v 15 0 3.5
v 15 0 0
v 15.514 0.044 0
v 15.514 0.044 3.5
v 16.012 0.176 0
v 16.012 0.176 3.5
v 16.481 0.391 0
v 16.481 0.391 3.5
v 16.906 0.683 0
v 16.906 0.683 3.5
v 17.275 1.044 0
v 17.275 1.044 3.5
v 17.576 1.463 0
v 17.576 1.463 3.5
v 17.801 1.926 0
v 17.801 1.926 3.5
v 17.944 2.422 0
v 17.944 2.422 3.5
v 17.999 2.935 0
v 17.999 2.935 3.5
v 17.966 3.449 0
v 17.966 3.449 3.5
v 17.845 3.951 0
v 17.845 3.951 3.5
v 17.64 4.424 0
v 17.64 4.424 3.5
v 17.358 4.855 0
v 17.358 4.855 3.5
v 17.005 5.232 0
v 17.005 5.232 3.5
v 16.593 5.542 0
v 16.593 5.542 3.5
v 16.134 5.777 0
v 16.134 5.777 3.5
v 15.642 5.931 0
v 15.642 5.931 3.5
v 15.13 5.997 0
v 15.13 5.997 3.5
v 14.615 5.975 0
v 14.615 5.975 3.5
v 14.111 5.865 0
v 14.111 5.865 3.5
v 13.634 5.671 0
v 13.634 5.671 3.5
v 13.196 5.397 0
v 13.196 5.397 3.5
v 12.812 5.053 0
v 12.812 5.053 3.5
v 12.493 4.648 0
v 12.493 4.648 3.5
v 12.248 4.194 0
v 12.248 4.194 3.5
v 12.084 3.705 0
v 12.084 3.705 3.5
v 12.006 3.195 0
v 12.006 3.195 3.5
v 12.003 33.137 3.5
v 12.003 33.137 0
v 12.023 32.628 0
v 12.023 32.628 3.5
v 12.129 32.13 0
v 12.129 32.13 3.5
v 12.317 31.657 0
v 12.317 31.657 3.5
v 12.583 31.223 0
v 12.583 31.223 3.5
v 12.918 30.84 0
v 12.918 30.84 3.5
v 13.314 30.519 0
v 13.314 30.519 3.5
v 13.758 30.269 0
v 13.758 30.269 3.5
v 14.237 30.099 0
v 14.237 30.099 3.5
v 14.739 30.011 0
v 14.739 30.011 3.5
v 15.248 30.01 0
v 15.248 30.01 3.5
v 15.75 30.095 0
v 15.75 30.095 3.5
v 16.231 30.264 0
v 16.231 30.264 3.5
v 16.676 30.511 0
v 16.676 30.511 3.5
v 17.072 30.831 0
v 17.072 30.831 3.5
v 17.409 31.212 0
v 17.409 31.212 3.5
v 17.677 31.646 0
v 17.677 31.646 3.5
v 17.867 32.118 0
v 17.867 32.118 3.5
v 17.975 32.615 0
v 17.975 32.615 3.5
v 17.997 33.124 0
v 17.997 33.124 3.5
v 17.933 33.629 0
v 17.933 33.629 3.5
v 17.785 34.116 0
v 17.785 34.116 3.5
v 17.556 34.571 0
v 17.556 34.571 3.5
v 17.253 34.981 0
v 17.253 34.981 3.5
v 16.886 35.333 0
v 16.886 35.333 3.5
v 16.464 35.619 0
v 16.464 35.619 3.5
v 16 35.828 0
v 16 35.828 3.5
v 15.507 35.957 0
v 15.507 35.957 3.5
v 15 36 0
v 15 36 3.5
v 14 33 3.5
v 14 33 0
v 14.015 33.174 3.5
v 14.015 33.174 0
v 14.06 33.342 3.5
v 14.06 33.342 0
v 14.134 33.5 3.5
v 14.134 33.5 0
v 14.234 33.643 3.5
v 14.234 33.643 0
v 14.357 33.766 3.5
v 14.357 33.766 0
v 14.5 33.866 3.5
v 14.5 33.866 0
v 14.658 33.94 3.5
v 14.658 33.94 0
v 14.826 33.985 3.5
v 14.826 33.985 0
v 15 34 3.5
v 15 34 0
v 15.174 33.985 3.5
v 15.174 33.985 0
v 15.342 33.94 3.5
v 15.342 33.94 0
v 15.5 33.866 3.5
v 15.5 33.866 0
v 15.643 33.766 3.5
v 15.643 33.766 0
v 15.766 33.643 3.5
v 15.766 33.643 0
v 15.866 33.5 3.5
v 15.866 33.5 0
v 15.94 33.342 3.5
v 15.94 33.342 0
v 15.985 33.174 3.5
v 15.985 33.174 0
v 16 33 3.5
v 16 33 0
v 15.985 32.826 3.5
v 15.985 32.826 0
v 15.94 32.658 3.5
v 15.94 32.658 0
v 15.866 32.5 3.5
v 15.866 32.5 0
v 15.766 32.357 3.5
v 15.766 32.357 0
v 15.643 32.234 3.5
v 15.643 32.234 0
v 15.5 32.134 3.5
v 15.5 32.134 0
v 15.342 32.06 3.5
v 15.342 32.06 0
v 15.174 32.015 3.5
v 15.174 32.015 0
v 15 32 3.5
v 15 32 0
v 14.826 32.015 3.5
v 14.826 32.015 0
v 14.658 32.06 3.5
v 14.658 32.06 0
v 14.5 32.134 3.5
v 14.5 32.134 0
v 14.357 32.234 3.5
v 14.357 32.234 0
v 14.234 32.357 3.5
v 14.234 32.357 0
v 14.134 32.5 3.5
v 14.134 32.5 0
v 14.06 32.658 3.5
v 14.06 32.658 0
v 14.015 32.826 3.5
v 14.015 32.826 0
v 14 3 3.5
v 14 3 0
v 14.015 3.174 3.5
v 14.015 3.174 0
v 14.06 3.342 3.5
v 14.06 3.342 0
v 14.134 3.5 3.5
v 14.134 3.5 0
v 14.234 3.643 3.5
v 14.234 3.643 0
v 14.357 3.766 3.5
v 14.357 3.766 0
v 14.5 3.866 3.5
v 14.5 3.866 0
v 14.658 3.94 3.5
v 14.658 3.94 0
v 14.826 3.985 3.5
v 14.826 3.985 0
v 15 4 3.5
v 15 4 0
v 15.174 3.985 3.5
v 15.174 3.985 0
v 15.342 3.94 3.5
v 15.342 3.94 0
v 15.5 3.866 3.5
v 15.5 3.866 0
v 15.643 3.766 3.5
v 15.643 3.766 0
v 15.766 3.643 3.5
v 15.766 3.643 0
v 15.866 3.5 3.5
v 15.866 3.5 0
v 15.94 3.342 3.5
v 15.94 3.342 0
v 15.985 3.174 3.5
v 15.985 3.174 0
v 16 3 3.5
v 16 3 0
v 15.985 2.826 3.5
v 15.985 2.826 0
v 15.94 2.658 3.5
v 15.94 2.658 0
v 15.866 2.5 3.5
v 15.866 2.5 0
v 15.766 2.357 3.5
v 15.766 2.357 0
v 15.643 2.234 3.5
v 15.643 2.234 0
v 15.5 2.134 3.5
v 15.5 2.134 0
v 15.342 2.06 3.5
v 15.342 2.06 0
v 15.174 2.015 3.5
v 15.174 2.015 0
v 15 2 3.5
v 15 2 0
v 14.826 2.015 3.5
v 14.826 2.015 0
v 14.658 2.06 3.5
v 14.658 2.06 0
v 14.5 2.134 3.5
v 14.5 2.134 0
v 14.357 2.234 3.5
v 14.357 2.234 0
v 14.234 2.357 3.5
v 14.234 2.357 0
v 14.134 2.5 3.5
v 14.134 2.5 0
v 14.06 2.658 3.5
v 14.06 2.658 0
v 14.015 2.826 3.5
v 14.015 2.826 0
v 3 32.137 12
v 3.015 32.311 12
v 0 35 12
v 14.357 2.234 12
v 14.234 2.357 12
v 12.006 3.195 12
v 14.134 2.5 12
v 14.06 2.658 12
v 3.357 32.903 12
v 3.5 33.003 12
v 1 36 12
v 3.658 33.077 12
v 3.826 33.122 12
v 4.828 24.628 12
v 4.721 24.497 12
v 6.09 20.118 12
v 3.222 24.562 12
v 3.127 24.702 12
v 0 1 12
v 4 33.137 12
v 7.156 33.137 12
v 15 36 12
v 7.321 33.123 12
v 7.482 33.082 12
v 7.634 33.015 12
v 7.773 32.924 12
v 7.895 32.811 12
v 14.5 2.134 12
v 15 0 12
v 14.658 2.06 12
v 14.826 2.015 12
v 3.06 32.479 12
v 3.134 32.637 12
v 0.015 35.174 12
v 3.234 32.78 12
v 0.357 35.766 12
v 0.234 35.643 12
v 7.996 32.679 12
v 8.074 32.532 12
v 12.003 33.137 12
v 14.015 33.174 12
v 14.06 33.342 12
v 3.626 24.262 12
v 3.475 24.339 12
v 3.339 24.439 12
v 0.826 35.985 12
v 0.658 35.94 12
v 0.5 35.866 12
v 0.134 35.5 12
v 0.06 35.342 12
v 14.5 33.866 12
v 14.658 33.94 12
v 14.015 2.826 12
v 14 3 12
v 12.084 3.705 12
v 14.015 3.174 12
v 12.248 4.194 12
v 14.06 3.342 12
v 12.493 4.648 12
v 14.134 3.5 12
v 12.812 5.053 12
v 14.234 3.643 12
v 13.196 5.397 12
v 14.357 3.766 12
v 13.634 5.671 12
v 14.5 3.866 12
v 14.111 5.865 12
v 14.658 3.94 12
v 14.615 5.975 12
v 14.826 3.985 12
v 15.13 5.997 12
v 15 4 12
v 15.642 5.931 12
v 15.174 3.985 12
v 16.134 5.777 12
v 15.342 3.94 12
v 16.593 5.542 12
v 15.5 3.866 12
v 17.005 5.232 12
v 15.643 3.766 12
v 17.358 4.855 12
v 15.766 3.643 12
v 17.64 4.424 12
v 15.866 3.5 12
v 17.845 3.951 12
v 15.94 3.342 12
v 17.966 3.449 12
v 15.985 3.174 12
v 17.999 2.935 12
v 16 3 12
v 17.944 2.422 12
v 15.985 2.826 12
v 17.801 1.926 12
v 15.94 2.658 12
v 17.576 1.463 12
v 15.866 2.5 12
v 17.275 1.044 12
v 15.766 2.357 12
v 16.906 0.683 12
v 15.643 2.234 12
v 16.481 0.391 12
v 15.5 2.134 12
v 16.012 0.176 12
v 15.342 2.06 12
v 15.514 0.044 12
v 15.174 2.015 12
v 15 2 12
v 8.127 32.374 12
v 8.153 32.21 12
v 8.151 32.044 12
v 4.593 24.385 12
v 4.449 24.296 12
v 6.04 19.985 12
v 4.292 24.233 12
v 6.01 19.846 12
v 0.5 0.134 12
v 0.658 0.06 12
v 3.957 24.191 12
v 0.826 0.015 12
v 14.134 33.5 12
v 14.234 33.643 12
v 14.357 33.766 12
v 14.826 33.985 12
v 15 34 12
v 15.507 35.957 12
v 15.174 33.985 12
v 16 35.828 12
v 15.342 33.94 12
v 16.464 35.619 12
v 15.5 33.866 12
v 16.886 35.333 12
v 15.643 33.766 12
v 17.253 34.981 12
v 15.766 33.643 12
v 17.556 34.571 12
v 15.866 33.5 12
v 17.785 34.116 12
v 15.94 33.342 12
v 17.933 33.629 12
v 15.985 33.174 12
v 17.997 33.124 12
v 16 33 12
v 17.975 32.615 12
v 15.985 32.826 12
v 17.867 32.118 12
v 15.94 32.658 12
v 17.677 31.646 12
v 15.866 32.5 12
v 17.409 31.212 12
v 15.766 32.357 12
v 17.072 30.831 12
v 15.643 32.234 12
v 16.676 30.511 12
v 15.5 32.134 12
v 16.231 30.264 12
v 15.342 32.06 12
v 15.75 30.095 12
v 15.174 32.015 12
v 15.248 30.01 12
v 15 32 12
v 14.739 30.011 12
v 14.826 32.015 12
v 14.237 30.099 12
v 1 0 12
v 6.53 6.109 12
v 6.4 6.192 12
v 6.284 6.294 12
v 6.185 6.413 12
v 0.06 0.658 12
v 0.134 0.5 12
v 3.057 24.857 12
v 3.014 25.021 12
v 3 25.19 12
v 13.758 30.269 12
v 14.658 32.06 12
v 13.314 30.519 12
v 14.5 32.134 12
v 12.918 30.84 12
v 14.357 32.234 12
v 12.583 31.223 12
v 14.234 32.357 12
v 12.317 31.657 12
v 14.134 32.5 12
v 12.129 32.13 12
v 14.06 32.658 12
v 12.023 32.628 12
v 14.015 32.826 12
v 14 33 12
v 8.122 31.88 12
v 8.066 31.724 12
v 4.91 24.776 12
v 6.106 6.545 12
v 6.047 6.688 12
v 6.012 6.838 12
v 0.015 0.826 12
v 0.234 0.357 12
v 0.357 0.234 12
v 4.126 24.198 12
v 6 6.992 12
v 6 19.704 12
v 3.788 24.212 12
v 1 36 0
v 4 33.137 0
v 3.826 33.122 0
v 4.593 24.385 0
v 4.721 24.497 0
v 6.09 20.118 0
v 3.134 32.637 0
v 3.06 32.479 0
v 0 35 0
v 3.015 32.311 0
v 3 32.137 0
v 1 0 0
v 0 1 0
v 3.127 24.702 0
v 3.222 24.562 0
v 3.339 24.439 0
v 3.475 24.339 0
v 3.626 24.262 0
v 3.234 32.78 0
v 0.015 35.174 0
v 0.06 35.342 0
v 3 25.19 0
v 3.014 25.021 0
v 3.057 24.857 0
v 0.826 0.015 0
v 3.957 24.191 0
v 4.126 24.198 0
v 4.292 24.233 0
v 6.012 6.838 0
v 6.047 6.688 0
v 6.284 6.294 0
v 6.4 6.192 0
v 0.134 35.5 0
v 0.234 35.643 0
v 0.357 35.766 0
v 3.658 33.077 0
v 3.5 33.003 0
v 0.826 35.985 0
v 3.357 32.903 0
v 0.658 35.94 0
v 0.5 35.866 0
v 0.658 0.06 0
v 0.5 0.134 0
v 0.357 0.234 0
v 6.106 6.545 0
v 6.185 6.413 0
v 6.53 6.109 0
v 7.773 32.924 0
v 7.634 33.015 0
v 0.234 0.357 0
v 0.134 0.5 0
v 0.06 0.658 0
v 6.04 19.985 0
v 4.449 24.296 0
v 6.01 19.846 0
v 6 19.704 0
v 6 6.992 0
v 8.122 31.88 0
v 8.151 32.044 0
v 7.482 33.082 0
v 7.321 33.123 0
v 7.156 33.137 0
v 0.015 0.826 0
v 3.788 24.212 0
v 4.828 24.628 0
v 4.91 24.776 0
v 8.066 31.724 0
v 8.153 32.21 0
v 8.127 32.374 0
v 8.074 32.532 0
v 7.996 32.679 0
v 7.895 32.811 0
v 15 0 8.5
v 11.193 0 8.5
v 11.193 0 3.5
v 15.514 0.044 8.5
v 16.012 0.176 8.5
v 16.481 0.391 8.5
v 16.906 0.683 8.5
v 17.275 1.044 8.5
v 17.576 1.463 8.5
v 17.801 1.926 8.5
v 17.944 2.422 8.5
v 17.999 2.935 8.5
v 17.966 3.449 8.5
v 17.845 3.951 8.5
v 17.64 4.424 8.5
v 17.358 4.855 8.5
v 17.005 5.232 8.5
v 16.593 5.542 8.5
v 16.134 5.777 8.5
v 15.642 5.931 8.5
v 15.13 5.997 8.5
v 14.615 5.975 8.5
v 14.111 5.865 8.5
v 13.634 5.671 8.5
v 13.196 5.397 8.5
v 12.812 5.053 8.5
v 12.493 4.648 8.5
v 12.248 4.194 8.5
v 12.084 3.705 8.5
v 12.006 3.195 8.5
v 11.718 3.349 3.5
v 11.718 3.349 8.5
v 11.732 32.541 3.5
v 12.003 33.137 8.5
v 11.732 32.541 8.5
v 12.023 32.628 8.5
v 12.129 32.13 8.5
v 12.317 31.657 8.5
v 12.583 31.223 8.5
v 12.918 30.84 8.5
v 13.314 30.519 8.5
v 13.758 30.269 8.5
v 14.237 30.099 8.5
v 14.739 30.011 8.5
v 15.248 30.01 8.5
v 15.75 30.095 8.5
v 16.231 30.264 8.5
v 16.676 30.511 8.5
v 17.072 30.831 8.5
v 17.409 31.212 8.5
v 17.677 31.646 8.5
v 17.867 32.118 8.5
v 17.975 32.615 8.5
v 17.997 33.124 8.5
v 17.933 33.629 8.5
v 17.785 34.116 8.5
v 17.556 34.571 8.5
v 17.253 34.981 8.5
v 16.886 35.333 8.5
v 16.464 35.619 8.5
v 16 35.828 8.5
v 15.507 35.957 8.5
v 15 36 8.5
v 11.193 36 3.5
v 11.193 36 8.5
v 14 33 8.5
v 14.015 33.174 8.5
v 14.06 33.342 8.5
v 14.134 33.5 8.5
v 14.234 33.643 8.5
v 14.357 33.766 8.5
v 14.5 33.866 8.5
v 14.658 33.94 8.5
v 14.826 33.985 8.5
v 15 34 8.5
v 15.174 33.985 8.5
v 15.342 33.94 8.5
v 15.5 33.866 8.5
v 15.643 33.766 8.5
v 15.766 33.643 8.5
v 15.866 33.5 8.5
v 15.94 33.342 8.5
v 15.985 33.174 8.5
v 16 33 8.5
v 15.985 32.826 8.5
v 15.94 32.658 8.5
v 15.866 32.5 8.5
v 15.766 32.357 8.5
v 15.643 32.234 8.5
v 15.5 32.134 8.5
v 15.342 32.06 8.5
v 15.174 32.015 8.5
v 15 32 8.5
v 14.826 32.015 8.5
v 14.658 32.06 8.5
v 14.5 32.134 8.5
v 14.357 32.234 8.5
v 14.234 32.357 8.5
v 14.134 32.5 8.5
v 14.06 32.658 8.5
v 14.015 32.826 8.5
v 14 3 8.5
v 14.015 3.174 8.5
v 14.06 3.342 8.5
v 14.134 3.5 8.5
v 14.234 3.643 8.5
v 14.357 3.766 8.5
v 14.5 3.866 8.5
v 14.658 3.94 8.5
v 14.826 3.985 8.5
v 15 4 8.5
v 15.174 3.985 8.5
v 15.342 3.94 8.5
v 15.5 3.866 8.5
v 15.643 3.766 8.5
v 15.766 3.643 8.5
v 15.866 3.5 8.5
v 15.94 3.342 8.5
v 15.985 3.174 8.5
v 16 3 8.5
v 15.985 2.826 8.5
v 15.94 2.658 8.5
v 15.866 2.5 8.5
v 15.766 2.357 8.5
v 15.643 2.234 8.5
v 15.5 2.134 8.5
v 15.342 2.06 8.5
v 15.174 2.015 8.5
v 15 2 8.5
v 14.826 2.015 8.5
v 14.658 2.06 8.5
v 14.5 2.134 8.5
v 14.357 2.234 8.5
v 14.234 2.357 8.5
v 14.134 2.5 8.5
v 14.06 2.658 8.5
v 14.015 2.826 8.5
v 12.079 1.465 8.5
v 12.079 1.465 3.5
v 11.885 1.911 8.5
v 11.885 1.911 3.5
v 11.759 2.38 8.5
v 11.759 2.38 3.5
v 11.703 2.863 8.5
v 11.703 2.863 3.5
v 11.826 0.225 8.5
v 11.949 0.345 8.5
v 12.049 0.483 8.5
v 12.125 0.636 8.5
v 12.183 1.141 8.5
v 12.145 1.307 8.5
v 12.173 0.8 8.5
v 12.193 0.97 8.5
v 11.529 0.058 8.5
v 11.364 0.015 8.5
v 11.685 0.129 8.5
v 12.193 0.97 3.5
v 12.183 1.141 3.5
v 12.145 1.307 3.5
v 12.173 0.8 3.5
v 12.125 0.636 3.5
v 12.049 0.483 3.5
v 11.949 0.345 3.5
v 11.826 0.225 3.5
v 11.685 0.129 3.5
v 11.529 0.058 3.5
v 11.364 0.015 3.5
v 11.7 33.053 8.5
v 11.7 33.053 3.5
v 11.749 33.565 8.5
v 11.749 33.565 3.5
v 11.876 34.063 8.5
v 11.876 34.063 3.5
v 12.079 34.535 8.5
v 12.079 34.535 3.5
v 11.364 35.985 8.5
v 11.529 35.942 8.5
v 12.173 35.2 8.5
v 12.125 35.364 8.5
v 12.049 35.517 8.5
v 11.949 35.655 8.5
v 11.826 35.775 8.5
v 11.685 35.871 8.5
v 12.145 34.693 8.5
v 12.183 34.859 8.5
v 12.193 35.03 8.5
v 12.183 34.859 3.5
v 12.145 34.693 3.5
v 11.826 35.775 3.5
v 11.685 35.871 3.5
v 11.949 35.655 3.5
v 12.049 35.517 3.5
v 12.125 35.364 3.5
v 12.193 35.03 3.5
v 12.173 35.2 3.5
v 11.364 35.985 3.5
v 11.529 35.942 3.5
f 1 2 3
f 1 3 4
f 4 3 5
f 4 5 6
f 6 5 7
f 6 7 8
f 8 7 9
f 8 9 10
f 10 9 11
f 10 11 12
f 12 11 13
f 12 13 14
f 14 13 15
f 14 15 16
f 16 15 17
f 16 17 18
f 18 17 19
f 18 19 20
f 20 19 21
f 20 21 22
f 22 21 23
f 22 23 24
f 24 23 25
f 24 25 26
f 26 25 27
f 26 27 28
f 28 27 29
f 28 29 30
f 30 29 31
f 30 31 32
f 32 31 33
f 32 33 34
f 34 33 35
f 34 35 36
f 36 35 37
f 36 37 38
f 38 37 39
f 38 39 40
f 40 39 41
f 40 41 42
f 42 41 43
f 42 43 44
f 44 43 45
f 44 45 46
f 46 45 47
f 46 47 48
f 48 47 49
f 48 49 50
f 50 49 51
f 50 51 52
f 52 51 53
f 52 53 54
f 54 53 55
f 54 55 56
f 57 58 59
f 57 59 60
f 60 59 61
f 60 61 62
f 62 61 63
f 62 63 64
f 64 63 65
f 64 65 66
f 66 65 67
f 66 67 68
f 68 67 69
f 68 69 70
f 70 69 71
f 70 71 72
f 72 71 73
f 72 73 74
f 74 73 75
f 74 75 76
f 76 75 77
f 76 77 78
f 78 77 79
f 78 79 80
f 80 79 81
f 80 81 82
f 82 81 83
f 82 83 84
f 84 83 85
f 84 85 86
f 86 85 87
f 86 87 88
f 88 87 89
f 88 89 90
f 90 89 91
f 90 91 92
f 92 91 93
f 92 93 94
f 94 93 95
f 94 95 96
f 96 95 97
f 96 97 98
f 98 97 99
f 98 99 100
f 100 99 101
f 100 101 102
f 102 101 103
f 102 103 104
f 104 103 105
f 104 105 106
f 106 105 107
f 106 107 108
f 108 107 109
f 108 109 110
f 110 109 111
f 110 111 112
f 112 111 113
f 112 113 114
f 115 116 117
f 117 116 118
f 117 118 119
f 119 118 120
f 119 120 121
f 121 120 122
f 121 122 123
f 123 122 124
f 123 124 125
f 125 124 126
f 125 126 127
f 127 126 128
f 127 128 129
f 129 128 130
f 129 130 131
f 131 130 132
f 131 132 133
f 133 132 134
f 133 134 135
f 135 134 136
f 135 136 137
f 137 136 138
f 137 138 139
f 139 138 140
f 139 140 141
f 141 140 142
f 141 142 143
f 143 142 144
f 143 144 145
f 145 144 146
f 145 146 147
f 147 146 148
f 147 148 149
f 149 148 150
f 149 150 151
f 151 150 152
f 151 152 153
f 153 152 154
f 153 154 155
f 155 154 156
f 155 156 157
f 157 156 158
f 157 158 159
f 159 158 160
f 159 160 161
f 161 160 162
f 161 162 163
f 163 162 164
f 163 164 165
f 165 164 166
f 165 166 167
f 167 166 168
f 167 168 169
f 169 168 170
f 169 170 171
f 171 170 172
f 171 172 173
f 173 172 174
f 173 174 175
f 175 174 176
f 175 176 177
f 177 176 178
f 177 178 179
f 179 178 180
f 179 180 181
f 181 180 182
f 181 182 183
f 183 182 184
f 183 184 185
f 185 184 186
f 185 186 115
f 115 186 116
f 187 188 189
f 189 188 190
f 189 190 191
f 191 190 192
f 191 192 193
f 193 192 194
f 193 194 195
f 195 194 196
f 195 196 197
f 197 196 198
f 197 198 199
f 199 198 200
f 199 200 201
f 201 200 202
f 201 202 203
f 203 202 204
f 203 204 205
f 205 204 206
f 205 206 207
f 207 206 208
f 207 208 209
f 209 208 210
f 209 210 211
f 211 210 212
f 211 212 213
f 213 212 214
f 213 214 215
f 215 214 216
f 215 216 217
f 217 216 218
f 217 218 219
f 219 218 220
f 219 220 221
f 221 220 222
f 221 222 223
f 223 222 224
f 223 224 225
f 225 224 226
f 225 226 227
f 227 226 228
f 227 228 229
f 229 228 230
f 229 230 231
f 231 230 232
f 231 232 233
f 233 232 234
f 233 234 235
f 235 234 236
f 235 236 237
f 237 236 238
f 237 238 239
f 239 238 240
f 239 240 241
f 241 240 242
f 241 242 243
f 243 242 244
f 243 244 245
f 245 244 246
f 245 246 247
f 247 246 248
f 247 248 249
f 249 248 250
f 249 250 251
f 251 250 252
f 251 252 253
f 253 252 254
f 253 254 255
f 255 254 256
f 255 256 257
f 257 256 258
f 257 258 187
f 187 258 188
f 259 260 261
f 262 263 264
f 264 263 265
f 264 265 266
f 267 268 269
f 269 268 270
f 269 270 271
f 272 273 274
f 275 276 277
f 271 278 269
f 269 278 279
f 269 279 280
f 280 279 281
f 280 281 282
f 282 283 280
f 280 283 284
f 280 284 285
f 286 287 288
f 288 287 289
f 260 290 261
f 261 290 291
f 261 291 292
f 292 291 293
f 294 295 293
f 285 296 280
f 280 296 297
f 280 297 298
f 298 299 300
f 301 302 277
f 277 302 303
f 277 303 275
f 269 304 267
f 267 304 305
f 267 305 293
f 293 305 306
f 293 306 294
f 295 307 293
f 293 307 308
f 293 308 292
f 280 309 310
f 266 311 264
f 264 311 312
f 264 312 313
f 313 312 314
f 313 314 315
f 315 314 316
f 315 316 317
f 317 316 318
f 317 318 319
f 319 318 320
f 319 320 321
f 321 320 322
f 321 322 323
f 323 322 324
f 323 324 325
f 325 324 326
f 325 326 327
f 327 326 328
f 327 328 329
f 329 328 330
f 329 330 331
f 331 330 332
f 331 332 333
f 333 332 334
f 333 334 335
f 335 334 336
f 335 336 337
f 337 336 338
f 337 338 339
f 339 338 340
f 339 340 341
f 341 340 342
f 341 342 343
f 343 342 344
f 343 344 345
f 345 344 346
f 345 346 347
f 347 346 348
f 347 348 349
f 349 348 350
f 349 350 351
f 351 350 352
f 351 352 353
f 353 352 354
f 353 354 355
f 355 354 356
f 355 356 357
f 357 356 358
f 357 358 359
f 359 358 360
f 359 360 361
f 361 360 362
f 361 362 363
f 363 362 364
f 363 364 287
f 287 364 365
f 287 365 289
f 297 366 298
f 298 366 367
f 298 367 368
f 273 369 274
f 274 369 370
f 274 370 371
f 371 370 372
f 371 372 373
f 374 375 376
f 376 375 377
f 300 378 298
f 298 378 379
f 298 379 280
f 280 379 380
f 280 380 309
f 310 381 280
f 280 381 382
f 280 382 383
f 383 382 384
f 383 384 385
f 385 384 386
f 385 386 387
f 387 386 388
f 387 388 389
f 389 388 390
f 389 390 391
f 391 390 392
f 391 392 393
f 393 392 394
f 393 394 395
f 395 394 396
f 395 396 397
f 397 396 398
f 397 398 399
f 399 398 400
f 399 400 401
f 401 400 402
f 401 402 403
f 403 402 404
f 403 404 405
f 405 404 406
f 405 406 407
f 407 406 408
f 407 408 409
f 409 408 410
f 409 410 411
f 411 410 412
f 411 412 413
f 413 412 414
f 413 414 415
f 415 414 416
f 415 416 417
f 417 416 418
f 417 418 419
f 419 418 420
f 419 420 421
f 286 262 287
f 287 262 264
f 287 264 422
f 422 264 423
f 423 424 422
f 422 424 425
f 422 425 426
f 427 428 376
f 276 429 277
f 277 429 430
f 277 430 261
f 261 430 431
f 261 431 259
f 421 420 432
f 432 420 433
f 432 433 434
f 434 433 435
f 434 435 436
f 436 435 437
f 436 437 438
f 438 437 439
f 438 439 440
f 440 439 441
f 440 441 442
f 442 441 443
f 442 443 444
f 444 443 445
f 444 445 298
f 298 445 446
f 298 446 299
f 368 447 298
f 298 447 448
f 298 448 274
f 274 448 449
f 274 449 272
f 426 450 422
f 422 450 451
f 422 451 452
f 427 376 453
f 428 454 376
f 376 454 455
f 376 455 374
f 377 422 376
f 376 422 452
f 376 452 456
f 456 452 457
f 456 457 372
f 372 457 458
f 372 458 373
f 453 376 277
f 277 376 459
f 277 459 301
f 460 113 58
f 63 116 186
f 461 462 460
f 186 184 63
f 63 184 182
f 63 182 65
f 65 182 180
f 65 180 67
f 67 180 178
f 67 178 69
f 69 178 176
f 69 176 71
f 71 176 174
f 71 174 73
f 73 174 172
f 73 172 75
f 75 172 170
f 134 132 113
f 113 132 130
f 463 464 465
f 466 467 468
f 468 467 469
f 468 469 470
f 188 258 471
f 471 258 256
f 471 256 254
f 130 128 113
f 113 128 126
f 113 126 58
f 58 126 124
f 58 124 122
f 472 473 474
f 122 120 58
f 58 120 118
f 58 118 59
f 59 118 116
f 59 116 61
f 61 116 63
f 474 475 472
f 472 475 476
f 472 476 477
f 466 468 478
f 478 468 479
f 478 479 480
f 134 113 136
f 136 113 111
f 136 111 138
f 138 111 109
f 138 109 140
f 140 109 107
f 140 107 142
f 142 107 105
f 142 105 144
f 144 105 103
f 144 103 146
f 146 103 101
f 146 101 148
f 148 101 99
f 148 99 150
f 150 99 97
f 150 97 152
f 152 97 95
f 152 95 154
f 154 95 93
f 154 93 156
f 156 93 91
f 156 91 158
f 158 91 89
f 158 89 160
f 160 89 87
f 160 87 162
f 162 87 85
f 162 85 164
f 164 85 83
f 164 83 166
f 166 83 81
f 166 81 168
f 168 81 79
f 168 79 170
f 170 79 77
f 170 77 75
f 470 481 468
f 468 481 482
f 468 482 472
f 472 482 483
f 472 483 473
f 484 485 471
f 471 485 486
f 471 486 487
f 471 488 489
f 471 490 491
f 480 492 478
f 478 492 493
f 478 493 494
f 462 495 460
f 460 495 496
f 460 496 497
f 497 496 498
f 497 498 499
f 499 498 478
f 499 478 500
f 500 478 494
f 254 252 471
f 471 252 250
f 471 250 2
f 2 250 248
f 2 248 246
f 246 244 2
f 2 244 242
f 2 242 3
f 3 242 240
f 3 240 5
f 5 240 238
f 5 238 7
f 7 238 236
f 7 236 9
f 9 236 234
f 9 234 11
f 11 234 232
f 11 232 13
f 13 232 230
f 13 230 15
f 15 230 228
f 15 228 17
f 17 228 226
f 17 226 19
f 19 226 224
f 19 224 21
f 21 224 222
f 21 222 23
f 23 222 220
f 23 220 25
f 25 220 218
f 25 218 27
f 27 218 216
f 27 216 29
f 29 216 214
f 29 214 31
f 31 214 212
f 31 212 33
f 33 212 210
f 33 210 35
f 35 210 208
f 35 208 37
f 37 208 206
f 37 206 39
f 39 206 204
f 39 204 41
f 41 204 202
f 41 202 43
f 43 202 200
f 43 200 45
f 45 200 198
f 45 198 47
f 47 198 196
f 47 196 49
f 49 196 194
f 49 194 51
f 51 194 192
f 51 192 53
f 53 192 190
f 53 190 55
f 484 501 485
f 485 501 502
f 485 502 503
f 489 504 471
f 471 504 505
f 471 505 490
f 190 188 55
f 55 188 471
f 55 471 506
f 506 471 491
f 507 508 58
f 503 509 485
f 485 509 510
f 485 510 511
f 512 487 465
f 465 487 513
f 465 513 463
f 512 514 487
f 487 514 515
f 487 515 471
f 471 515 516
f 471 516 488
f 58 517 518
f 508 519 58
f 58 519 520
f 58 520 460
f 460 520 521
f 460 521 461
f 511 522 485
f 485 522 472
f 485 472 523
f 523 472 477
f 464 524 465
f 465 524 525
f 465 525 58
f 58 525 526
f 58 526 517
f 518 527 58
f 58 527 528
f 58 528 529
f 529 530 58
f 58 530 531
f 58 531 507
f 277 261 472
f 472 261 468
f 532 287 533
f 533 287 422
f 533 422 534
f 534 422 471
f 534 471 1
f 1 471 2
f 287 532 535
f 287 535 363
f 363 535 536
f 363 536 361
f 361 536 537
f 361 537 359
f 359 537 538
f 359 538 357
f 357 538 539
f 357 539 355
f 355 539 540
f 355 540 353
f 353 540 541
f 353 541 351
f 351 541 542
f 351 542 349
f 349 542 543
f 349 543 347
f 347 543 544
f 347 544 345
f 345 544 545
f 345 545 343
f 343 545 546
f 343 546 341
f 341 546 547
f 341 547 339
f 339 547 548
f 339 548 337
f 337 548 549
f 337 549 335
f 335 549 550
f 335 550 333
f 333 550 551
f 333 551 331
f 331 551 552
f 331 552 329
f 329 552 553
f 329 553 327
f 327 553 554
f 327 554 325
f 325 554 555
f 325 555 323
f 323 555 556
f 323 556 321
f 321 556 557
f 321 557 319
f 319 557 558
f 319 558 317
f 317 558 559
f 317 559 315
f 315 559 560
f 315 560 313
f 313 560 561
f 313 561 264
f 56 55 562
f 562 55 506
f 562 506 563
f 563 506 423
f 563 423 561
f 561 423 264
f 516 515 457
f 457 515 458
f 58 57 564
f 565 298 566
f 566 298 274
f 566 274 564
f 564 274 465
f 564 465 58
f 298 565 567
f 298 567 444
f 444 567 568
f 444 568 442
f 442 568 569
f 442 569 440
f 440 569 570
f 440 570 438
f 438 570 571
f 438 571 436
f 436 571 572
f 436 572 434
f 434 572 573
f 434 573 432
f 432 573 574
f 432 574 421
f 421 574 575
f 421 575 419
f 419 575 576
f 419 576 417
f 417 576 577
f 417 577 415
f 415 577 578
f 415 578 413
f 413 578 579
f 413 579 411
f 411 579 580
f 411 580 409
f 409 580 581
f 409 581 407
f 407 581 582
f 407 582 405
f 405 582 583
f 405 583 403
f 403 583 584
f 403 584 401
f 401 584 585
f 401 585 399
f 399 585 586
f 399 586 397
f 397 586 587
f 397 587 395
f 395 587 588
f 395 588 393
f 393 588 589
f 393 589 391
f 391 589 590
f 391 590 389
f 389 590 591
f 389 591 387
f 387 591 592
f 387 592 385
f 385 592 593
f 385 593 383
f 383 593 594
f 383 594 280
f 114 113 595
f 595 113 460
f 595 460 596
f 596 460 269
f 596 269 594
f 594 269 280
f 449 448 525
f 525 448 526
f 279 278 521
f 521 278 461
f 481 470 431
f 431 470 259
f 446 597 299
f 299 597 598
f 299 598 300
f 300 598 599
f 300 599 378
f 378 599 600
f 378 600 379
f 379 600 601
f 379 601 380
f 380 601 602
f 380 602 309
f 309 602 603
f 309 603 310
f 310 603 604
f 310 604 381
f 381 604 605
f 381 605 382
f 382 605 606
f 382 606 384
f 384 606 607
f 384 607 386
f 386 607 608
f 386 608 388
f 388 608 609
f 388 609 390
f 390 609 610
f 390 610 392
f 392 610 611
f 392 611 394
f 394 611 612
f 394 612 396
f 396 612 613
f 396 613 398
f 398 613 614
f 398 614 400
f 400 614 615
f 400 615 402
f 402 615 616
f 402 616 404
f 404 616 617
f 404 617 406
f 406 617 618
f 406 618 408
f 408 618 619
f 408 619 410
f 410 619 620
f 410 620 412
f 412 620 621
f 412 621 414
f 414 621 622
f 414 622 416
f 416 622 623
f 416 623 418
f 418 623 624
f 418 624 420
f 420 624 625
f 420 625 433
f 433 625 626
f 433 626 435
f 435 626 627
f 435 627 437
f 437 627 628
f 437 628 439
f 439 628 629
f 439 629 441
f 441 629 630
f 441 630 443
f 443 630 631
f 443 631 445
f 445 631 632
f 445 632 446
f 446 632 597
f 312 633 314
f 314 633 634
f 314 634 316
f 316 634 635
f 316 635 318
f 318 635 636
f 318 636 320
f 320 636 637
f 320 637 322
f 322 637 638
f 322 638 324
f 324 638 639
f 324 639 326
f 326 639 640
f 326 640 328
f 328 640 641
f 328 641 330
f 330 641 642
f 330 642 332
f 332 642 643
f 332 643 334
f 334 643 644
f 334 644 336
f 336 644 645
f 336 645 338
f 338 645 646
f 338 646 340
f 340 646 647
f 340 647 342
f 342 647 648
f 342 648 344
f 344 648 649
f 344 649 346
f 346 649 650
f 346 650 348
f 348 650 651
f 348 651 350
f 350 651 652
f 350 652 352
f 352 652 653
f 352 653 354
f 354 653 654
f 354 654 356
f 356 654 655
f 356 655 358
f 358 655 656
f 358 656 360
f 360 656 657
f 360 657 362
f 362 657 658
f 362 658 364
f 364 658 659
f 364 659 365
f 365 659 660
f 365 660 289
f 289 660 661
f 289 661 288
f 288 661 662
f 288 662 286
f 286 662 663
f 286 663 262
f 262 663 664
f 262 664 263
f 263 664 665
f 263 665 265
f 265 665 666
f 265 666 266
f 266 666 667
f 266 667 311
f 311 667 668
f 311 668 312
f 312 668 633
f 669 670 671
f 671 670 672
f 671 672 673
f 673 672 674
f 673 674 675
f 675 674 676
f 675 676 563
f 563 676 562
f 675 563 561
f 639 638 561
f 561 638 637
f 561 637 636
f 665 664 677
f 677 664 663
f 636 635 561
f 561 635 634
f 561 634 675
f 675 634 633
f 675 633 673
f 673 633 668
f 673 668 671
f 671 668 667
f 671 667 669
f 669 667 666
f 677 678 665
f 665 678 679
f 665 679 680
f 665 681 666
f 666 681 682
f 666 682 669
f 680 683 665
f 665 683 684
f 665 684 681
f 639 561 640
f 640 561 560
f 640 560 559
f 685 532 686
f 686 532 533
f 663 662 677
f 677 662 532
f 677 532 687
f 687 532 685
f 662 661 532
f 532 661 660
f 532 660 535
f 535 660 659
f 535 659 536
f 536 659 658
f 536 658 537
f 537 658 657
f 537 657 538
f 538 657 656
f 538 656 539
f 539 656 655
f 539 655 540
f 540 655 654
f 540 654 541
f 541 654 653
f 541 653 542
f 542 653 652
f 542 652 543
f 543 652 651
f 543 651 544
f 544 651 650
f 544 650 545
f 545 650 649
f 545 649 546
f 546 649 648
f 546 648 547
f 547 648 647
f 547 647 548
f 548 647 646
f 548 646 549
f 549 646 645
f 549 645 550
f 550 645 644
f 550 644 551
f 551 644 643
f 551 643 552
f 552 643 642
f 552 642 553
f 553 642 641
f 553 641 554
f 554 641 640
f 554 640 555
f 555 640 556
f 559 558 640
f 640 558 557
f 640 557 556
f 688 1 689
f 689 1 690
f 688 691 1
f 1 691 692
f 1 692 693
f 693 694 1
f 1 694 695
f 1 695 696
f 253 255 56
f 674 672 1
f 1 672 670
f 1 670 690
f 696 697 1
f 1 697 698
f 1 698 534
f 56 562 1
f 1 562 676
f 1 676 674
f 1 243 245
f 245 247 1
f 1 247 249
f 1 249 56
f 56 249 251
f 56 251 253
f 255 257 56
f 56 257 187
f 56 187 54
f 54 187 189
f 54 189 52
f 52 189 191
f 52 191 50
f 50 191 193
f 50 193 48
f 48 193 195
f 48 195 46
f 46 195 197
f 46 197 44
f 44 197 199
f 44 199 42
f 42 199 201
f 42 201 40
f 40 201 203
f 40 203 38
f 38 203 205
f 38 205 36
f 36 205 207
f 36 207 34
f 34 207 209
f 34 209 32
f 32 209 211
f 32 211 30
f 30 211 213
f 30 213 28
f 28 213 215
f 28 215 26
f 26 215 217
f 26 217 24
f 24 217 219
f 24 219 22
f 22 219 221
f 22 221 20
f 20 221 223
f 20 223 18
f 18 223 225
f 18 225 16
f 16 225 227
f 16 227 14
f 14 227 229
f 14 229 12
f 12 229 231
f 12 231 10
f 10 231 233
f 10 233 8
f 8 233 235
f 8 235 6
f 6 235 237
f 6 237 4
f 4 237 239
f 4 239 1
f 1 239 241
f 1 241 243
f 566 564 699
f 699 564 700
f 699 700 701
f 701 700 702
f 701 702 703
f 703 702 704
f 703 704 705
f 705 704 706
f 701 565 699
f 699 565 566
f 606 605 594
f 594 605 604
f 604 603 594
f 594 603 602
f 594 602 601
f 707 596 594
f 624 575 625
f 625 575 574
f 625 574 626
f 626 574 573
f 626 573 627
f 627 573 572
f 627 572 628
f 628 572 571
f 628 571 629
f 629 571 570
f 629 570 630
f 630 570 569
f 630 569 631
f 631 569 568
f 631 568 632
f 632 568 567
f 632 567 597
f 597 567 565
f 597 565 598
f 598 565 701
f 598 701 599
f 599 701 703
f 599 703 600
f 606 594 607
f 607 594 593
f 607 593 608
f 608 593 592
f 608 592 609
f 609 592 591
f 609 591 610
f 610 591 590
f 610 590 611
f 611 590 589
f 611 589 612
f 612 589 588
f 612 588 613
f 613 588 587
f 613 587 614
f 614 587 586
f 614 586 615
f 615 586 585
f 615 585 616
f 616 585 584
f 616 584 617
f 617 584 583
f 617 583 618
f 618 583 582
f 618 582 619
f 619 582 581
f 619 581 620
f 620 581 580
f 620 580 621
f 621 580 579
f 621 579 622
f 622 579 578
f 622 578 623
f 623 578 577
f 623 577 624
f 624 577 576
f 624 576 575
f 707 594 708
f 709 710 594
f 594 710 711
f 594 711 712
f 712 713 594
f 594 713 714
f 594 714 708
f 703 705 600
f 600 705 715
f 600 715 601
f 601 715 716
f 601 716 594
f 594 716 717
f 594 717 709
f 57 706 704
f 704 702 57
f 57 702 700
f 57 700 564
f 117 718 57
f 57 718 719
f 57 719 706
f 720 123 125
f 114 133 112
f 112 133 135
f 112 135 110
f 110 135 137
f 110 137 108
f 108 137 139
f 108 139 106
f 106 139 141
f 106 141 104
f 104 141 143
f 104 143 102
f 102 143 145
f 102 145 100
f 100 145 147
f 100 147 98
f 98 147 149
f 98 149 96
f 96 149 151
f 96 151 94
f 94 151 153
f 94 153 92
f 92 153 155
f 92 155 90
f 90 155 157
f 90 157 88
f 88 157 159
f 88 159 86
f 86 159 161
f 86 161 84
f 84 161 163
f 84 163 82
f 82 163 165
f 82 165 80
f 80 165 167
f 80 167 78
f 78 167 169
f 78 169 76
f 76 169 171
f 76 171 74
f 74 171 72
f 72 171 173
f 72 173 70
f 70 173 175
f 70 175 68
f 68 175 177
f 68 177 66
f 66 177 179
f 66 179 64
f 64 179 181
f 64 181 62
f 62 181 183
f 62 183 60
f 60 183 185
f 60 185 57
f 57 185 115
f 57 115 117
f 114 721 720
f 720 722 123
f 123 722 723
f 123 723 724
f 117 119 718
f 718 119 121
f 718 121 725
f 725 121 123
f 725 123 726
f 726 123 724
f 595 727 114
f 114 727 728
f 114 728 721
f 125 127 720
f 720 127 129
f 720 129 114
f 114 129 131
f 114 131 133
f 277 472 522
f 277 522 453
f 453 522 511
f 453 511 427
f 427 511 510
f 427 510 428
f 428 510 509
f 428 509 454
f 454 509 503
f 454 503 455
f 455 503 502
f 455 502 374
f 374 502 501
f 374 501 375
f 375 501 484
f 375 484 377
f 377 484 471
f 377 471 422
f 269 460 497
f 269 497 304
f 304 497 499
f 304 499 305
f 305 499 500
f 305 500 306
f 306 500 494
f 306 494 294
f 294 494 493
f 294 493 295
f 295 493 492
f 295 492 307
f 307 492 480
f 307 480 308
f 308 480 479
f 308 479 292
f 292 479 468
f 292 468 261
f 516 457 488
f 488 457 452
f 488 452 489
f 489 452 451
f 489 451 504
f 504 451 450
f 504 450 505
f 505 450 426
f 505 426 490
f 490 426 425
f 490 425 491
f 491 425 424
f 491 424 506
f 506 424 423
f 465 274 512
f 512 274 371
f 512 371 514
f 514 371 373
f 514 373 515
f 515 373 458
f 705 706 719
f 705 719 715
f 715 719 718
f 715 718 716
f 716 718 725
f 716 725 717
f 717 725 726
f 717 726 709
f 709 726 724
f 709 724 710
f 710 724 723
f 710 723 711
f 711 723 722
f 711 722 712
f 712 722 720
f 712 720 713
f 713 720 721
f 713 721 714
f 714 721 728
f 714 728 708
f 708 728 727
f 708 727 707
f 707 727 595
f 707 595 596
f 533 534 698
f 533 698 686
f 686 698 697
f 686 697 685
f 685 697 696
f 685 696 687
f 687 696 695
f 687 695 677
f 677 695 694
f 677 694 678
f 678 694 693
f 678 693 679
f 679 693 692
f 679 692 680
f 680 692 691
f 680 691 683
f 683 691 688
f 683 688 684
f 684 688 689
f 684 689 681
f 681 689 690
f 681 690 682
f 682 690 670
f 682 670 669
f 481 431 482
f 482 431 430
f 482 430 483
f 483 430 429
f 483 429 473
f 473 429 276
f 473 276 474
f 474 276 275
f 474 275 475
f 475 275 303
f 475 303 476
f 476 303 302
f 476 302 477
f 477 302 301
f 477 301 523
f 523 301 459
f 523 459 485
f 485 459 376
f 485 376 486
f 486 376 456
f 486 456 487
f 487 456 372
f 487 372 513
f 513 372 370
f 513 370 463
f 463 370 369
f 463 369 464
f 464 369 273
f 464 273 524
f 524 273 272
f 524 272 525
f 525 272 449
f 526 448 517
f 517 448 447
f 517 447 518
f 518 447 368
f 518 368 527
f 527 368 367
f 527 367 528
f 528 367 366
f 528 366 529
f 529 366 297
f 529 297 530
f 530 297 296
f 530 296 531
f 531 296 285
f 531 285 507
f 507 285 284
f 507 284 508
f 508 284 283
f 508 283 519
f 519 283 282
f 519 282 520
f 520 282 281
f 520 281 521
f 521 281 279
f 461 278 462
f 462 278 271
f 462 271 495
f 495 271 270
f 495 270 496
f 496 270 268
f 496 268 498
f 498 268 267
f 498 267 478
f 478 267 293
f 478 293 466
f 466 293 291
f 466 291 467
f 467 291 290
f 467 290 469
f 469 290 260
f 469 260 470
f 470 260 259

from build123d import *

# Parameters (mm, degrees)
SKETCH1_R               = 1
BOSS_EXTRUDE1_DEPTH     = 12
SKETCH2_R               = 3.3
CUT_EXTRUDE1_DEPTH      = 2.5
CUT_EXTRUDE1_DEPTH_BACK = 2.5
FILLET1_R               = 1
FILLET2_R               = 1
FILLET3_R               = 1
FILLET4_R               = 1


with BuildPart() as part:
    # Sketch1 → Boss-Extrude1 (new body)
    with BuildSketch(Plane.XY):
        with BuildLine():
            Line((0, 0), (15, 0))
            ThreePointArc((15, 0), (17.189317787, 5.051069873), (12.006370829, 3.19540825))
            Line((12.006370829, 3.19540825), (6, 6.391648207))
            Line((6, 6.391648207), (6, 19.92058514))
            Line((6, 19.92058514), (12.003141677, 33.137259573))
            ThreePointArc((12.003141677, 33.137259573), (17.072223598, 30.830693807), (15, 36))
            Line((15, 36), (0, 36))
            Line((0, 36), (0, 0))
        make_face()
        with Locations((15, 33)):
            Circle(SKETCH1_R, mode=Mode.SUBTRACT)
        with Locations((15, 3)):
            Circle(SKETCH1_R, mode=Mode.SUBTRACT)
        Polygon((8.708182188, 33.137259573), (3, 33.137259573), (3, 20.569975699), align=None, mode=Mode.SUBTRACT)
    extrude(amount=BOSS_EXTRUDE1_DEPTH)

    # Sketch2 → Cut-Extrude1 (cut, two sides)
    with BuildSketch(Plane.XY.offset(6)) as cut_extrude1_sk:
        with Locations((15, 33)):
            Circle(SKETCH2_R)
        with Locations((15, 3)):
            Circle(SKETCH2_R)
    extrude(amount=CUT_EXTRUDE1_DEPTH, mode=Mode.SUBTRACT)
    extrude(cut_extrude1_sk.sketch, amount=-CUT_EXTRUDE1_DEPTH_BACK, mode=Mode.SUBTRACT)

    # Fillet1
    fillet1_edges = [part.edges().sort_by_distance(p)[0] for p in [
        (0, 36, 6),
        (0, 0, 6),
    ]]
    fillet(fillet1_edges, radius=FILLET1_R)

    # Fillet2
    fillet2_edges = [part.edges().sort_by_distance(p)[0] for p in [
        (6, 19.92058514, 6),
        (6, 6.391648207, 6),
    ]]
    fillet(fillet2_edges, radius=FILLET2_R)

    # Fillet3
    fillet3_edges = [part.edges().sort_by_distance(p)[0] for p in [
        (13.625227292, 36, 6),
        (13.625227292, 0, 6),
    ]]
    fillet(fillet3_edges, radius=FILLET3_R)

    # Fillet4
    fillet4_edges = [part.edges().sort_by_distance(p)[0] for p in [
        (3, 20.569975699, 6),
        (8.708182188, 33.137259573, 6),
        (3, 33.137259573, 6),
    ]]
    fillet(fillet4_edges, radius=FILLET4_R)


solid = part.part
